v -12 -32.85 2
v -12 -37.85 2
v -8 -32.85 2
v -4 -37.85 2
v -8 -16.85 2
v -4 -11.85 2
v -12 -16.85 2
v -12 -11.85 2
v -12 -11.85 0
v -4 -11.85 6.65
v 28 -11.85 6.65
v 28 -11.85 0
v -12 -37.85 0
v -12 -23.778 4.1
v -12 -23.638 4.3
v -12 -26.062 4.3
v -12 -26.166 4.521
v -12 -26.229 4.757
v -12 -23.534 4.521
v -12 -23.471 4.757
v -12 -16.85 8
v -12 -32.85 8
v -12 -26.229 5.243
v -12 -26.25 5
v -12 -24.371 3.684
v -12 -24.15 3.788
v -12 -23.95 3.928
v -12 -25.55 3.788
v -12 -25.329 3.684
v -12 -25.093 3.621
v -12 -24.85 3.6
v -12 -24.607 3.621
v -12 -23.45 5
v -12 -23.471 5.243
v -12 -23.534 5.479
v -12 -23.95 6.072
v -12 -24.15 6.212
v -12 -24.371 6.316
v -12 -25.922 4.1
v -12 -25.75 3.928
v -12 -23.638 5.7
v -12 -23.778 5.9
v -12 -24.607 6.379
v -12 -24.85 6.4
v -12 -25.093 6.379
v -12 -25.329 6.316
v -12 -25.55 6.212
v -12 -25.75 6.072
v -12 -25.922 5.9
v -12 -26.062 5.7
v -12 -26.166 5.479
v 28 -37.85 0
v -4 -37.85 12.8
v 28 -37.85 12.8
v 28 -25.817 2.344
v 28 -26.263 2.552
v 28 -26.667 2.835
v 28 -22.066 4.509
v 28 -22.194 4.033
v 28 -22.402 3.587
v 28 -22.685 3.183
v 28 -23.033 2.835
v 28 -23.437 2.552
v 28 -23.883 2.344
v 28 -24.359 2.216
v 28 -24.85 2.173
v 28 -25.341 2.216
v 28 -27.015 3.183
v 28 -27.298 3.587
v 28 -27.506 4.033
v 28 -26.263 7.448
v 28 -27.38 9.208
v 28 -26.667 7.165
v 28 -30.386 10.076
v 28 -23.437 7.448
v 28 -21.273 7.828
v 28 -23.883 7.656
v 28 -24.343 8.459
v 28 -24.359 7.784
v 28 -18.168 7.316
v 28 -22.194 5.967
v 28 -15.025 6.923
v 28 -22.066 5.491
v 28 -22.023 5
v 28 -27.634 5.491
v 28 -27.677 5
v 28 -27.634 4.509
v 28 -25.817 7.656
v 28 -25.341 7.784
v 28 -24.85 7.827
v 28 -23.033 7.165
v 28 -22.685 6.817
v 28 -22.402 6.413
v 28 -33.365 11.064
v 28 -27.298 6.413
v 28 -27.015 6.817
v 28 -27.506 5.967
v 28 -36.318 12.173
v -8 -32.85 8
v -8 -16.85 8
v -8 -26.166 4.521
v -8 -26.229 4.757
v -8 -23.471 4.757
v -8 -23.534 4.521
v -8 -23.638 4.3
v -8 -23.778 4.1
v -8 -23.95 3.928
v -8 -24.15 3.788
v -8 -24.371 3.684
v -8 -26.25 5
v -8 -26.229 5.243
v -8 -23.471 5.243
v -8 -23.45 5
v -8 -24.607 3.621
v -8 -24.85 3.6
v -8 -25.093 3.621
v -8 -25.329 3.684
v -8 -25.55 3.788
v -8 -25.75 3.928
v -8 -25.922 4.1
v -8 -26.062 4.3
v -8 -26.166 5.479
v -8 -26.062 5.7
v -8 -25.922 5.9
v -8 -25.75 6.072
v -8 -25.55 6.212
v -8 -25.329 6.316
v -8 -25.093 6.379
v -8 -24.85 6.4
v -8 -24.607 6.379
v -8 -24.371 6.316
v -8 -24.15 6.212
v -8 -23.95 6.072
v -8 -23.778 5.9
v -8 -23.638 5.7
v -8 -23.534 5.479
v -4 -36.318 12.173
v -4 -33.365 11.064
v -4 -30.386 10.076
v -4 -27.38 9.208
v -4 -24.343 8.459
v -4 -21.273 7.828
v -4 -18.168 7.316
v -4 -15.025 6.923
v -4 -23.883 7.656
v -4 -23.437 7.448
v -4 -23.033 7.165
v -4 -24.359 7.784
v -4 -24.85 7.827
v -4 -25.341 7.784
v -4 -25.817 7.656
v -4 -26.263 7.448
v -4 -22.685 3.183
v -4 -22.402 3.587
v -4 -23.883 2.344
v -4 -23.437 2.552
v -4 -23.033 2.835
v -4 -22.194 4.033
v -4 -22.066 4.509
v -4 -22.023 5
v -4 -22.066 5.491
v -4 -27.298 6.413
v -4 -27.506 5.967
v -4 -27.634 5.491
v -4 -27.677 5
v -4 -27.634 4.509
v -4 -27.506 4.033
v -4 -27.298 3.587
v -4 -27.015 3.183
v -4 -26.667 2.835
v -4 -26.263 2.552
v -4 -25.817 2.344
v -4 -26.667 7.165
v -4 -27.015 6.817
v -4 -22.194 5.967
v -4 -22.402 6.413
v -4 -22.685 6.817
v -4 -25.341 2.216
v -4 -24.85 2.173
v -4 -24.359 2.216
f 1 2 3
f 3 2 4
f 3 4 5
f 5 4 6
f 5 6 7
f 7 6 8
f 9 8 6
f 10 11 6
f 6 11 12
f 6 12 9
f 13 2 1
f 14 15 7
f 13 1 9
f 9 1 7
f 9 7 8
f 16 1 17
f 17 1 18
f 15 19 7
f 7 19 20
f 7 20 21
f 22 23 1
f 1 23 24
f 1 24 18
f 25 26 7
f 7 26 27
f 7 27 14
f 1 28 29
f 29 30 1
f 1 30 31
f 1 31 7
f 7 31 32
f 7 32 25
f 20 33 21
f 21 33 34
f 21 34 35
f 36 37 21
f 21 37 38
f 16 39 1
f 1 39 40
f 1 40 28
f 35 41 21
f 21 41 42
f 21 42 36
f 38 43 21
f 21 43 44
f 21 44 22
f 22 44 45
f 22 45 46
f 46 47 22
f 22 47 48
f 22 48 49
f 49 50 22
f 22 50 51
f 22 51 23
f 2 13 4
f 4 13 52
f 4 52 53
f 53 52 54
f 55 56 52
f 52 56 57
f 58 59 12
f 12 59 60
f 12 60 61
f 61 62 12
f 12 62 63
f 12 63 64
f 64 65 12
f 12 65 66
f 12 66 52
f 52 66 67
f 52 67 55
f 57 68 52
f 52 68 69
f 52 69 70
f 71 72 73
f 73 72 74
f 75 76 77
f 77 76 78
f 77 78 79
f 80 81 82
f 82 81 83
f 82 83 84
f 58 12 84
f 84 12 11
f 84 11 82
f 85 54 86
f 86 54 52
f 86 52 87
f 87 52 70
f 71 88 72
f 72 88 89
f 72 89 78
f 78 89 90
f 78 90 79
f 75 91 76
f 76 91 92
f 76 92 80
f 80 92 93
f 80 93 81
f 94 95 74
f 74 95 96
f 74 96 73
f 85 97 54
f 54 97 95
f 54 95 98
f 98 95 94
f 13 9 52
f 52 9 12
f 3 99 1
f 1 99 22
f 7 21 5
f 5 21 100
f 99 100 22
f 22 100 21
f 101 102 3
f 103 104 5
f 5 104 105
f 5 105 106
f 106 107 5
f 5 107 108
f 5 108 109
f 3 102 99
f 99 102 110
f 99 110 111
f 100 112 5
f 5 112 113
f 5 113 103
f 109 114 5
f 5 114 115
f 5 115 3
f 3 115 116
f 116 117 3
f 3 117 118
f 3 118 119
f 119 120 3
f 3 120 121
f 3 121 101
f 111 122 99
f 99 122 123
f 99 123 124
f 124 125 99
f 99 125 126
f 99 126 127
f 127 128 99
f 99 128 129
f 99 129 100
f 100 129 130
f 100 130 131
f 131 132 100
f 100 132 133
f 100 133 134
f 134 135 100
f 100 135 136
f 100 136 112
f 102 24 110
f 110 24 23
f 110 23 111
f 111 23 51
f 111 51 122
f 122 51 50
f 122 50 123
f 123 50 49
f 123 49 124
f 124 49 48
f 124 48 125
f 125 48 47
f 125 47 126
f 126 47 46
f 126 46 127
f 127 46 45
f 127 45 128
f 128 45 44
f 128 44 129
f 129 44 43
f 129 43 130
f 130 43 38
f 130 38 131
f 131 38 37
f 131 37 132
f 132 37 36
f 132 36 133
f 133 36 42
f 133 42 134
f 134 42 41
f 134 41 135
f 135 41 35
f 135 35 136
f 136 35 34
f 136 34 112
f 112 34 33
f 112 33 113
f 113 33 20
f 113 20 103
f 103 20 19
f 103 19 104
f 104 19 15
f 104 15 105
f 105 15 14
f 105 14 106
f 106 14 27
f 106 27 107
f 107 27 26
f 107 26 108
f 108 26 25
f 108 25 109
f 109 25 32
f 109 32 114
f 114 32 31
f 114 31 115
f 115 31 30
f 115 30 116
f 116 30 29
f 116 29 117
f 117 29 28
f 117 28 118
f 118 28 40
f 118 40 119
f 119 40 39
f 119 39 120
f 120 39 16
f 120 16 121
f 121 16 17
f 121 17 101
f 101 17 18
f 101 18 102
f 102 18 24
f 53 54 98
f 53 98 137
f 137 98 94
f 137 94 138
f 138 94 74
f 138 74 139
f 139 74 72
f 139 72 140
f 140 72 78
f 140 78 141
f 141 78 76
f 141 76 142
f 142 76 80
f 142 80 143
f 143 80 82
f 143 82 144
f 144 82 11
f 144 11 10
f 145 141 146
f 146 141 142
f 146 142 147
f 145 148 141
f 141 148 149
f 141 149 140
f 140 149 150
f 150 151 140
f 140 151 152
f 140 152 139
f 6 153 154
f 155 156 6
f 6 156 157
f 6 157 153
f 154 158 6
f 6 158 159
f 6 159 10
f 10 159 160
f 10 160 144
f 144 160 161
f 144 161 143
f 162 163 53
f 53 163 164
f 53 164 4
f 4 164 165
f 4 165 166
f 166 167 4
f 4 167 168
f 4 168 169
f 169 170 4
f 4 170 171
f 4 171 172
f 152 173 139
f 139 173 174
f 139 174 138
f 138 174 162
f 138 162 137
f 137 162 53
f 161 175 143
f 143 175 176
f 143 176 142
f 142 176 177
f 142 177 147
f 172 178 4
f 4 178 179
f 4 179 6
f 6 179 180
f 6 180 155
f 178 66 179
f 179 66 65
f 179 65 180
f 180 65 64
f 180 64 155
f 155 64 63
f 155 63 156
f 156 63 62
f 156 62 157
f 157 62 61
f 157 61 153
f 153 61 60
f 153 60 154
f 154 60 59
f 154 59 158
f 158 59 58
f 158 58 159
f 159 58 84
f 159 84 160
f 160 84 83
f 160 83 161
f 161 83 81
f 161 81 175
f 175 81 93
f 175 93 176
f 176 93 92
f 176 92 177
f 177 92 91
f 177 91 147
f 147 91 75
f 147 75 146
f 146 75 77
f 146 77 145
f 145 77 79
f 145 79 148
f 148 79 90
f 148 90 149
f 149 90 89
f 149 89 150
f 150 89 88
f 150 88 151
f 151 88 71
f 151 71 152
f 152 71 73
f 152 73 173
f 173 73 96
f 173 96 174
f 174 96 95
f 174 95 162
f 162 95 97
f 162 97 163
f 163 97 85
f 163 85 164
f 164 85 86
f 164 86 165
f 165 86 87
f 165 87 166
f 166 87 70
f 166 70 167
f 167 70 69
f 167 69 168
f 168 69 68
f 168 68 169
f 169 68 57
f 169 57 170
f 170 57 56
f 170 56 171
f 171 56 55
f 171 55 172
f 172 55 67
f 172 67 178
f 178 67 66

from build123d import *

# Parameters (mm, degrees)
ESQUISSE1_W             = 40
ESQUISSE1_H             = 26
BOSS_EXTRU_1_DEPTH      = 2
ESQUISSE2_W             = 8
ESQUISSE2_H             = 16
BOSS_EXTRU_2_DEPTH      = 4
ESQUISSE3_R             = 1.4
ENL_V_MAT_EXTRU_1_DEPTH = 4
BOSS_EXTRU_3_DEPTH      = 32
ESQUISSE5_R             = 1.4
ENL_V_MAT_EXTRU_2_DEPTH = 41
ESQUISSE6_R             = 2.826620589
ENL_V_MAT_EXTRU_3_DEPTH = 32


with BuildPart() as part:
    # Esquisse1 → Boss.-Extru.1 (new body)
    with BuildSketch(Plane.XY):
        with Locations((8, -24.85)):
            Rectangle(ESQUISSE1_W, ESQUISSE1_H)
    extrude(amount=BOSS_EXTRU_1_DEPTH)

    # Esquisse2 → Boss.-Extru.2 (add)
    with BuildSketch(Plane.ZY.offset(12)):
        with Locations((4, -24.85)):
            Rectangle(ESQUISSE2_W, ESQUISSE2_H)
    extrude(amount=-BOSS_EXTRU_2_DEPTH)

    # Esquisse3 → Enlèv. mat.-Extru.1 (cut)
    with BuildSketch(Plane.ZY.offset(12)):
        with Locations((5, -24.85)):
            Circle(ESQUISSE3_R)
    extrude(amount=-ENL_V_MAT_EXTRU_1_DEPTH, mode=Mode.SUBTRACT)

    # Esquisse4 → Boss.-Extru.3 (add)
    with BuildSketch(Plane(origin=(28, 0, 0), x_dir=(0, 0, -1), z_dir=(1, 0, 0))):
        with BuildLine():
            Line((-6.65, -11.85), (0, -11.85))
            Line((0, -11.85), (0, -37.85))
            Line((0, -37.85), (-12.8, -37.85))
            add(Edge.make_bspline(
                [(-6.65, -11.85), (-7.550626547, -25.384236651), (-12.8, -37.85)],
                knots=[0, 0, 0, 1, 1, 1], degree=2))
        make_face()
    extrude(amount=-BOSS_EXTRU_3_DEPTH)

    # Esquisse5 → Enlèv. mat.-Extru.2 (cut)
    with BuildSketch(Plane.ZY.offset(12)):
        with Locations((5, -24.85)):
            Circle(ESQUISSE5_R)
    extrude(amount=-ENL_V_MAT_EXTRU_2_DEPTH, mode=Mode.SUBTRACT)

    # Esquisse6 → Enlèv. mat.-Extru.3 (cut)
    with BuildSketch(Plane(origin=(28, 0, 0), x_dir=(0, 0, -1), z_dir=(1, 0, 0))):
        with Locations((-5, -24.85)):
            Circle(ESQUISSE6_R)
    extrude(amount=-ENL_V_MAT_EXTRU_3_DEPTH, mode=Mode.SUBTRACT)


solid = part.part
